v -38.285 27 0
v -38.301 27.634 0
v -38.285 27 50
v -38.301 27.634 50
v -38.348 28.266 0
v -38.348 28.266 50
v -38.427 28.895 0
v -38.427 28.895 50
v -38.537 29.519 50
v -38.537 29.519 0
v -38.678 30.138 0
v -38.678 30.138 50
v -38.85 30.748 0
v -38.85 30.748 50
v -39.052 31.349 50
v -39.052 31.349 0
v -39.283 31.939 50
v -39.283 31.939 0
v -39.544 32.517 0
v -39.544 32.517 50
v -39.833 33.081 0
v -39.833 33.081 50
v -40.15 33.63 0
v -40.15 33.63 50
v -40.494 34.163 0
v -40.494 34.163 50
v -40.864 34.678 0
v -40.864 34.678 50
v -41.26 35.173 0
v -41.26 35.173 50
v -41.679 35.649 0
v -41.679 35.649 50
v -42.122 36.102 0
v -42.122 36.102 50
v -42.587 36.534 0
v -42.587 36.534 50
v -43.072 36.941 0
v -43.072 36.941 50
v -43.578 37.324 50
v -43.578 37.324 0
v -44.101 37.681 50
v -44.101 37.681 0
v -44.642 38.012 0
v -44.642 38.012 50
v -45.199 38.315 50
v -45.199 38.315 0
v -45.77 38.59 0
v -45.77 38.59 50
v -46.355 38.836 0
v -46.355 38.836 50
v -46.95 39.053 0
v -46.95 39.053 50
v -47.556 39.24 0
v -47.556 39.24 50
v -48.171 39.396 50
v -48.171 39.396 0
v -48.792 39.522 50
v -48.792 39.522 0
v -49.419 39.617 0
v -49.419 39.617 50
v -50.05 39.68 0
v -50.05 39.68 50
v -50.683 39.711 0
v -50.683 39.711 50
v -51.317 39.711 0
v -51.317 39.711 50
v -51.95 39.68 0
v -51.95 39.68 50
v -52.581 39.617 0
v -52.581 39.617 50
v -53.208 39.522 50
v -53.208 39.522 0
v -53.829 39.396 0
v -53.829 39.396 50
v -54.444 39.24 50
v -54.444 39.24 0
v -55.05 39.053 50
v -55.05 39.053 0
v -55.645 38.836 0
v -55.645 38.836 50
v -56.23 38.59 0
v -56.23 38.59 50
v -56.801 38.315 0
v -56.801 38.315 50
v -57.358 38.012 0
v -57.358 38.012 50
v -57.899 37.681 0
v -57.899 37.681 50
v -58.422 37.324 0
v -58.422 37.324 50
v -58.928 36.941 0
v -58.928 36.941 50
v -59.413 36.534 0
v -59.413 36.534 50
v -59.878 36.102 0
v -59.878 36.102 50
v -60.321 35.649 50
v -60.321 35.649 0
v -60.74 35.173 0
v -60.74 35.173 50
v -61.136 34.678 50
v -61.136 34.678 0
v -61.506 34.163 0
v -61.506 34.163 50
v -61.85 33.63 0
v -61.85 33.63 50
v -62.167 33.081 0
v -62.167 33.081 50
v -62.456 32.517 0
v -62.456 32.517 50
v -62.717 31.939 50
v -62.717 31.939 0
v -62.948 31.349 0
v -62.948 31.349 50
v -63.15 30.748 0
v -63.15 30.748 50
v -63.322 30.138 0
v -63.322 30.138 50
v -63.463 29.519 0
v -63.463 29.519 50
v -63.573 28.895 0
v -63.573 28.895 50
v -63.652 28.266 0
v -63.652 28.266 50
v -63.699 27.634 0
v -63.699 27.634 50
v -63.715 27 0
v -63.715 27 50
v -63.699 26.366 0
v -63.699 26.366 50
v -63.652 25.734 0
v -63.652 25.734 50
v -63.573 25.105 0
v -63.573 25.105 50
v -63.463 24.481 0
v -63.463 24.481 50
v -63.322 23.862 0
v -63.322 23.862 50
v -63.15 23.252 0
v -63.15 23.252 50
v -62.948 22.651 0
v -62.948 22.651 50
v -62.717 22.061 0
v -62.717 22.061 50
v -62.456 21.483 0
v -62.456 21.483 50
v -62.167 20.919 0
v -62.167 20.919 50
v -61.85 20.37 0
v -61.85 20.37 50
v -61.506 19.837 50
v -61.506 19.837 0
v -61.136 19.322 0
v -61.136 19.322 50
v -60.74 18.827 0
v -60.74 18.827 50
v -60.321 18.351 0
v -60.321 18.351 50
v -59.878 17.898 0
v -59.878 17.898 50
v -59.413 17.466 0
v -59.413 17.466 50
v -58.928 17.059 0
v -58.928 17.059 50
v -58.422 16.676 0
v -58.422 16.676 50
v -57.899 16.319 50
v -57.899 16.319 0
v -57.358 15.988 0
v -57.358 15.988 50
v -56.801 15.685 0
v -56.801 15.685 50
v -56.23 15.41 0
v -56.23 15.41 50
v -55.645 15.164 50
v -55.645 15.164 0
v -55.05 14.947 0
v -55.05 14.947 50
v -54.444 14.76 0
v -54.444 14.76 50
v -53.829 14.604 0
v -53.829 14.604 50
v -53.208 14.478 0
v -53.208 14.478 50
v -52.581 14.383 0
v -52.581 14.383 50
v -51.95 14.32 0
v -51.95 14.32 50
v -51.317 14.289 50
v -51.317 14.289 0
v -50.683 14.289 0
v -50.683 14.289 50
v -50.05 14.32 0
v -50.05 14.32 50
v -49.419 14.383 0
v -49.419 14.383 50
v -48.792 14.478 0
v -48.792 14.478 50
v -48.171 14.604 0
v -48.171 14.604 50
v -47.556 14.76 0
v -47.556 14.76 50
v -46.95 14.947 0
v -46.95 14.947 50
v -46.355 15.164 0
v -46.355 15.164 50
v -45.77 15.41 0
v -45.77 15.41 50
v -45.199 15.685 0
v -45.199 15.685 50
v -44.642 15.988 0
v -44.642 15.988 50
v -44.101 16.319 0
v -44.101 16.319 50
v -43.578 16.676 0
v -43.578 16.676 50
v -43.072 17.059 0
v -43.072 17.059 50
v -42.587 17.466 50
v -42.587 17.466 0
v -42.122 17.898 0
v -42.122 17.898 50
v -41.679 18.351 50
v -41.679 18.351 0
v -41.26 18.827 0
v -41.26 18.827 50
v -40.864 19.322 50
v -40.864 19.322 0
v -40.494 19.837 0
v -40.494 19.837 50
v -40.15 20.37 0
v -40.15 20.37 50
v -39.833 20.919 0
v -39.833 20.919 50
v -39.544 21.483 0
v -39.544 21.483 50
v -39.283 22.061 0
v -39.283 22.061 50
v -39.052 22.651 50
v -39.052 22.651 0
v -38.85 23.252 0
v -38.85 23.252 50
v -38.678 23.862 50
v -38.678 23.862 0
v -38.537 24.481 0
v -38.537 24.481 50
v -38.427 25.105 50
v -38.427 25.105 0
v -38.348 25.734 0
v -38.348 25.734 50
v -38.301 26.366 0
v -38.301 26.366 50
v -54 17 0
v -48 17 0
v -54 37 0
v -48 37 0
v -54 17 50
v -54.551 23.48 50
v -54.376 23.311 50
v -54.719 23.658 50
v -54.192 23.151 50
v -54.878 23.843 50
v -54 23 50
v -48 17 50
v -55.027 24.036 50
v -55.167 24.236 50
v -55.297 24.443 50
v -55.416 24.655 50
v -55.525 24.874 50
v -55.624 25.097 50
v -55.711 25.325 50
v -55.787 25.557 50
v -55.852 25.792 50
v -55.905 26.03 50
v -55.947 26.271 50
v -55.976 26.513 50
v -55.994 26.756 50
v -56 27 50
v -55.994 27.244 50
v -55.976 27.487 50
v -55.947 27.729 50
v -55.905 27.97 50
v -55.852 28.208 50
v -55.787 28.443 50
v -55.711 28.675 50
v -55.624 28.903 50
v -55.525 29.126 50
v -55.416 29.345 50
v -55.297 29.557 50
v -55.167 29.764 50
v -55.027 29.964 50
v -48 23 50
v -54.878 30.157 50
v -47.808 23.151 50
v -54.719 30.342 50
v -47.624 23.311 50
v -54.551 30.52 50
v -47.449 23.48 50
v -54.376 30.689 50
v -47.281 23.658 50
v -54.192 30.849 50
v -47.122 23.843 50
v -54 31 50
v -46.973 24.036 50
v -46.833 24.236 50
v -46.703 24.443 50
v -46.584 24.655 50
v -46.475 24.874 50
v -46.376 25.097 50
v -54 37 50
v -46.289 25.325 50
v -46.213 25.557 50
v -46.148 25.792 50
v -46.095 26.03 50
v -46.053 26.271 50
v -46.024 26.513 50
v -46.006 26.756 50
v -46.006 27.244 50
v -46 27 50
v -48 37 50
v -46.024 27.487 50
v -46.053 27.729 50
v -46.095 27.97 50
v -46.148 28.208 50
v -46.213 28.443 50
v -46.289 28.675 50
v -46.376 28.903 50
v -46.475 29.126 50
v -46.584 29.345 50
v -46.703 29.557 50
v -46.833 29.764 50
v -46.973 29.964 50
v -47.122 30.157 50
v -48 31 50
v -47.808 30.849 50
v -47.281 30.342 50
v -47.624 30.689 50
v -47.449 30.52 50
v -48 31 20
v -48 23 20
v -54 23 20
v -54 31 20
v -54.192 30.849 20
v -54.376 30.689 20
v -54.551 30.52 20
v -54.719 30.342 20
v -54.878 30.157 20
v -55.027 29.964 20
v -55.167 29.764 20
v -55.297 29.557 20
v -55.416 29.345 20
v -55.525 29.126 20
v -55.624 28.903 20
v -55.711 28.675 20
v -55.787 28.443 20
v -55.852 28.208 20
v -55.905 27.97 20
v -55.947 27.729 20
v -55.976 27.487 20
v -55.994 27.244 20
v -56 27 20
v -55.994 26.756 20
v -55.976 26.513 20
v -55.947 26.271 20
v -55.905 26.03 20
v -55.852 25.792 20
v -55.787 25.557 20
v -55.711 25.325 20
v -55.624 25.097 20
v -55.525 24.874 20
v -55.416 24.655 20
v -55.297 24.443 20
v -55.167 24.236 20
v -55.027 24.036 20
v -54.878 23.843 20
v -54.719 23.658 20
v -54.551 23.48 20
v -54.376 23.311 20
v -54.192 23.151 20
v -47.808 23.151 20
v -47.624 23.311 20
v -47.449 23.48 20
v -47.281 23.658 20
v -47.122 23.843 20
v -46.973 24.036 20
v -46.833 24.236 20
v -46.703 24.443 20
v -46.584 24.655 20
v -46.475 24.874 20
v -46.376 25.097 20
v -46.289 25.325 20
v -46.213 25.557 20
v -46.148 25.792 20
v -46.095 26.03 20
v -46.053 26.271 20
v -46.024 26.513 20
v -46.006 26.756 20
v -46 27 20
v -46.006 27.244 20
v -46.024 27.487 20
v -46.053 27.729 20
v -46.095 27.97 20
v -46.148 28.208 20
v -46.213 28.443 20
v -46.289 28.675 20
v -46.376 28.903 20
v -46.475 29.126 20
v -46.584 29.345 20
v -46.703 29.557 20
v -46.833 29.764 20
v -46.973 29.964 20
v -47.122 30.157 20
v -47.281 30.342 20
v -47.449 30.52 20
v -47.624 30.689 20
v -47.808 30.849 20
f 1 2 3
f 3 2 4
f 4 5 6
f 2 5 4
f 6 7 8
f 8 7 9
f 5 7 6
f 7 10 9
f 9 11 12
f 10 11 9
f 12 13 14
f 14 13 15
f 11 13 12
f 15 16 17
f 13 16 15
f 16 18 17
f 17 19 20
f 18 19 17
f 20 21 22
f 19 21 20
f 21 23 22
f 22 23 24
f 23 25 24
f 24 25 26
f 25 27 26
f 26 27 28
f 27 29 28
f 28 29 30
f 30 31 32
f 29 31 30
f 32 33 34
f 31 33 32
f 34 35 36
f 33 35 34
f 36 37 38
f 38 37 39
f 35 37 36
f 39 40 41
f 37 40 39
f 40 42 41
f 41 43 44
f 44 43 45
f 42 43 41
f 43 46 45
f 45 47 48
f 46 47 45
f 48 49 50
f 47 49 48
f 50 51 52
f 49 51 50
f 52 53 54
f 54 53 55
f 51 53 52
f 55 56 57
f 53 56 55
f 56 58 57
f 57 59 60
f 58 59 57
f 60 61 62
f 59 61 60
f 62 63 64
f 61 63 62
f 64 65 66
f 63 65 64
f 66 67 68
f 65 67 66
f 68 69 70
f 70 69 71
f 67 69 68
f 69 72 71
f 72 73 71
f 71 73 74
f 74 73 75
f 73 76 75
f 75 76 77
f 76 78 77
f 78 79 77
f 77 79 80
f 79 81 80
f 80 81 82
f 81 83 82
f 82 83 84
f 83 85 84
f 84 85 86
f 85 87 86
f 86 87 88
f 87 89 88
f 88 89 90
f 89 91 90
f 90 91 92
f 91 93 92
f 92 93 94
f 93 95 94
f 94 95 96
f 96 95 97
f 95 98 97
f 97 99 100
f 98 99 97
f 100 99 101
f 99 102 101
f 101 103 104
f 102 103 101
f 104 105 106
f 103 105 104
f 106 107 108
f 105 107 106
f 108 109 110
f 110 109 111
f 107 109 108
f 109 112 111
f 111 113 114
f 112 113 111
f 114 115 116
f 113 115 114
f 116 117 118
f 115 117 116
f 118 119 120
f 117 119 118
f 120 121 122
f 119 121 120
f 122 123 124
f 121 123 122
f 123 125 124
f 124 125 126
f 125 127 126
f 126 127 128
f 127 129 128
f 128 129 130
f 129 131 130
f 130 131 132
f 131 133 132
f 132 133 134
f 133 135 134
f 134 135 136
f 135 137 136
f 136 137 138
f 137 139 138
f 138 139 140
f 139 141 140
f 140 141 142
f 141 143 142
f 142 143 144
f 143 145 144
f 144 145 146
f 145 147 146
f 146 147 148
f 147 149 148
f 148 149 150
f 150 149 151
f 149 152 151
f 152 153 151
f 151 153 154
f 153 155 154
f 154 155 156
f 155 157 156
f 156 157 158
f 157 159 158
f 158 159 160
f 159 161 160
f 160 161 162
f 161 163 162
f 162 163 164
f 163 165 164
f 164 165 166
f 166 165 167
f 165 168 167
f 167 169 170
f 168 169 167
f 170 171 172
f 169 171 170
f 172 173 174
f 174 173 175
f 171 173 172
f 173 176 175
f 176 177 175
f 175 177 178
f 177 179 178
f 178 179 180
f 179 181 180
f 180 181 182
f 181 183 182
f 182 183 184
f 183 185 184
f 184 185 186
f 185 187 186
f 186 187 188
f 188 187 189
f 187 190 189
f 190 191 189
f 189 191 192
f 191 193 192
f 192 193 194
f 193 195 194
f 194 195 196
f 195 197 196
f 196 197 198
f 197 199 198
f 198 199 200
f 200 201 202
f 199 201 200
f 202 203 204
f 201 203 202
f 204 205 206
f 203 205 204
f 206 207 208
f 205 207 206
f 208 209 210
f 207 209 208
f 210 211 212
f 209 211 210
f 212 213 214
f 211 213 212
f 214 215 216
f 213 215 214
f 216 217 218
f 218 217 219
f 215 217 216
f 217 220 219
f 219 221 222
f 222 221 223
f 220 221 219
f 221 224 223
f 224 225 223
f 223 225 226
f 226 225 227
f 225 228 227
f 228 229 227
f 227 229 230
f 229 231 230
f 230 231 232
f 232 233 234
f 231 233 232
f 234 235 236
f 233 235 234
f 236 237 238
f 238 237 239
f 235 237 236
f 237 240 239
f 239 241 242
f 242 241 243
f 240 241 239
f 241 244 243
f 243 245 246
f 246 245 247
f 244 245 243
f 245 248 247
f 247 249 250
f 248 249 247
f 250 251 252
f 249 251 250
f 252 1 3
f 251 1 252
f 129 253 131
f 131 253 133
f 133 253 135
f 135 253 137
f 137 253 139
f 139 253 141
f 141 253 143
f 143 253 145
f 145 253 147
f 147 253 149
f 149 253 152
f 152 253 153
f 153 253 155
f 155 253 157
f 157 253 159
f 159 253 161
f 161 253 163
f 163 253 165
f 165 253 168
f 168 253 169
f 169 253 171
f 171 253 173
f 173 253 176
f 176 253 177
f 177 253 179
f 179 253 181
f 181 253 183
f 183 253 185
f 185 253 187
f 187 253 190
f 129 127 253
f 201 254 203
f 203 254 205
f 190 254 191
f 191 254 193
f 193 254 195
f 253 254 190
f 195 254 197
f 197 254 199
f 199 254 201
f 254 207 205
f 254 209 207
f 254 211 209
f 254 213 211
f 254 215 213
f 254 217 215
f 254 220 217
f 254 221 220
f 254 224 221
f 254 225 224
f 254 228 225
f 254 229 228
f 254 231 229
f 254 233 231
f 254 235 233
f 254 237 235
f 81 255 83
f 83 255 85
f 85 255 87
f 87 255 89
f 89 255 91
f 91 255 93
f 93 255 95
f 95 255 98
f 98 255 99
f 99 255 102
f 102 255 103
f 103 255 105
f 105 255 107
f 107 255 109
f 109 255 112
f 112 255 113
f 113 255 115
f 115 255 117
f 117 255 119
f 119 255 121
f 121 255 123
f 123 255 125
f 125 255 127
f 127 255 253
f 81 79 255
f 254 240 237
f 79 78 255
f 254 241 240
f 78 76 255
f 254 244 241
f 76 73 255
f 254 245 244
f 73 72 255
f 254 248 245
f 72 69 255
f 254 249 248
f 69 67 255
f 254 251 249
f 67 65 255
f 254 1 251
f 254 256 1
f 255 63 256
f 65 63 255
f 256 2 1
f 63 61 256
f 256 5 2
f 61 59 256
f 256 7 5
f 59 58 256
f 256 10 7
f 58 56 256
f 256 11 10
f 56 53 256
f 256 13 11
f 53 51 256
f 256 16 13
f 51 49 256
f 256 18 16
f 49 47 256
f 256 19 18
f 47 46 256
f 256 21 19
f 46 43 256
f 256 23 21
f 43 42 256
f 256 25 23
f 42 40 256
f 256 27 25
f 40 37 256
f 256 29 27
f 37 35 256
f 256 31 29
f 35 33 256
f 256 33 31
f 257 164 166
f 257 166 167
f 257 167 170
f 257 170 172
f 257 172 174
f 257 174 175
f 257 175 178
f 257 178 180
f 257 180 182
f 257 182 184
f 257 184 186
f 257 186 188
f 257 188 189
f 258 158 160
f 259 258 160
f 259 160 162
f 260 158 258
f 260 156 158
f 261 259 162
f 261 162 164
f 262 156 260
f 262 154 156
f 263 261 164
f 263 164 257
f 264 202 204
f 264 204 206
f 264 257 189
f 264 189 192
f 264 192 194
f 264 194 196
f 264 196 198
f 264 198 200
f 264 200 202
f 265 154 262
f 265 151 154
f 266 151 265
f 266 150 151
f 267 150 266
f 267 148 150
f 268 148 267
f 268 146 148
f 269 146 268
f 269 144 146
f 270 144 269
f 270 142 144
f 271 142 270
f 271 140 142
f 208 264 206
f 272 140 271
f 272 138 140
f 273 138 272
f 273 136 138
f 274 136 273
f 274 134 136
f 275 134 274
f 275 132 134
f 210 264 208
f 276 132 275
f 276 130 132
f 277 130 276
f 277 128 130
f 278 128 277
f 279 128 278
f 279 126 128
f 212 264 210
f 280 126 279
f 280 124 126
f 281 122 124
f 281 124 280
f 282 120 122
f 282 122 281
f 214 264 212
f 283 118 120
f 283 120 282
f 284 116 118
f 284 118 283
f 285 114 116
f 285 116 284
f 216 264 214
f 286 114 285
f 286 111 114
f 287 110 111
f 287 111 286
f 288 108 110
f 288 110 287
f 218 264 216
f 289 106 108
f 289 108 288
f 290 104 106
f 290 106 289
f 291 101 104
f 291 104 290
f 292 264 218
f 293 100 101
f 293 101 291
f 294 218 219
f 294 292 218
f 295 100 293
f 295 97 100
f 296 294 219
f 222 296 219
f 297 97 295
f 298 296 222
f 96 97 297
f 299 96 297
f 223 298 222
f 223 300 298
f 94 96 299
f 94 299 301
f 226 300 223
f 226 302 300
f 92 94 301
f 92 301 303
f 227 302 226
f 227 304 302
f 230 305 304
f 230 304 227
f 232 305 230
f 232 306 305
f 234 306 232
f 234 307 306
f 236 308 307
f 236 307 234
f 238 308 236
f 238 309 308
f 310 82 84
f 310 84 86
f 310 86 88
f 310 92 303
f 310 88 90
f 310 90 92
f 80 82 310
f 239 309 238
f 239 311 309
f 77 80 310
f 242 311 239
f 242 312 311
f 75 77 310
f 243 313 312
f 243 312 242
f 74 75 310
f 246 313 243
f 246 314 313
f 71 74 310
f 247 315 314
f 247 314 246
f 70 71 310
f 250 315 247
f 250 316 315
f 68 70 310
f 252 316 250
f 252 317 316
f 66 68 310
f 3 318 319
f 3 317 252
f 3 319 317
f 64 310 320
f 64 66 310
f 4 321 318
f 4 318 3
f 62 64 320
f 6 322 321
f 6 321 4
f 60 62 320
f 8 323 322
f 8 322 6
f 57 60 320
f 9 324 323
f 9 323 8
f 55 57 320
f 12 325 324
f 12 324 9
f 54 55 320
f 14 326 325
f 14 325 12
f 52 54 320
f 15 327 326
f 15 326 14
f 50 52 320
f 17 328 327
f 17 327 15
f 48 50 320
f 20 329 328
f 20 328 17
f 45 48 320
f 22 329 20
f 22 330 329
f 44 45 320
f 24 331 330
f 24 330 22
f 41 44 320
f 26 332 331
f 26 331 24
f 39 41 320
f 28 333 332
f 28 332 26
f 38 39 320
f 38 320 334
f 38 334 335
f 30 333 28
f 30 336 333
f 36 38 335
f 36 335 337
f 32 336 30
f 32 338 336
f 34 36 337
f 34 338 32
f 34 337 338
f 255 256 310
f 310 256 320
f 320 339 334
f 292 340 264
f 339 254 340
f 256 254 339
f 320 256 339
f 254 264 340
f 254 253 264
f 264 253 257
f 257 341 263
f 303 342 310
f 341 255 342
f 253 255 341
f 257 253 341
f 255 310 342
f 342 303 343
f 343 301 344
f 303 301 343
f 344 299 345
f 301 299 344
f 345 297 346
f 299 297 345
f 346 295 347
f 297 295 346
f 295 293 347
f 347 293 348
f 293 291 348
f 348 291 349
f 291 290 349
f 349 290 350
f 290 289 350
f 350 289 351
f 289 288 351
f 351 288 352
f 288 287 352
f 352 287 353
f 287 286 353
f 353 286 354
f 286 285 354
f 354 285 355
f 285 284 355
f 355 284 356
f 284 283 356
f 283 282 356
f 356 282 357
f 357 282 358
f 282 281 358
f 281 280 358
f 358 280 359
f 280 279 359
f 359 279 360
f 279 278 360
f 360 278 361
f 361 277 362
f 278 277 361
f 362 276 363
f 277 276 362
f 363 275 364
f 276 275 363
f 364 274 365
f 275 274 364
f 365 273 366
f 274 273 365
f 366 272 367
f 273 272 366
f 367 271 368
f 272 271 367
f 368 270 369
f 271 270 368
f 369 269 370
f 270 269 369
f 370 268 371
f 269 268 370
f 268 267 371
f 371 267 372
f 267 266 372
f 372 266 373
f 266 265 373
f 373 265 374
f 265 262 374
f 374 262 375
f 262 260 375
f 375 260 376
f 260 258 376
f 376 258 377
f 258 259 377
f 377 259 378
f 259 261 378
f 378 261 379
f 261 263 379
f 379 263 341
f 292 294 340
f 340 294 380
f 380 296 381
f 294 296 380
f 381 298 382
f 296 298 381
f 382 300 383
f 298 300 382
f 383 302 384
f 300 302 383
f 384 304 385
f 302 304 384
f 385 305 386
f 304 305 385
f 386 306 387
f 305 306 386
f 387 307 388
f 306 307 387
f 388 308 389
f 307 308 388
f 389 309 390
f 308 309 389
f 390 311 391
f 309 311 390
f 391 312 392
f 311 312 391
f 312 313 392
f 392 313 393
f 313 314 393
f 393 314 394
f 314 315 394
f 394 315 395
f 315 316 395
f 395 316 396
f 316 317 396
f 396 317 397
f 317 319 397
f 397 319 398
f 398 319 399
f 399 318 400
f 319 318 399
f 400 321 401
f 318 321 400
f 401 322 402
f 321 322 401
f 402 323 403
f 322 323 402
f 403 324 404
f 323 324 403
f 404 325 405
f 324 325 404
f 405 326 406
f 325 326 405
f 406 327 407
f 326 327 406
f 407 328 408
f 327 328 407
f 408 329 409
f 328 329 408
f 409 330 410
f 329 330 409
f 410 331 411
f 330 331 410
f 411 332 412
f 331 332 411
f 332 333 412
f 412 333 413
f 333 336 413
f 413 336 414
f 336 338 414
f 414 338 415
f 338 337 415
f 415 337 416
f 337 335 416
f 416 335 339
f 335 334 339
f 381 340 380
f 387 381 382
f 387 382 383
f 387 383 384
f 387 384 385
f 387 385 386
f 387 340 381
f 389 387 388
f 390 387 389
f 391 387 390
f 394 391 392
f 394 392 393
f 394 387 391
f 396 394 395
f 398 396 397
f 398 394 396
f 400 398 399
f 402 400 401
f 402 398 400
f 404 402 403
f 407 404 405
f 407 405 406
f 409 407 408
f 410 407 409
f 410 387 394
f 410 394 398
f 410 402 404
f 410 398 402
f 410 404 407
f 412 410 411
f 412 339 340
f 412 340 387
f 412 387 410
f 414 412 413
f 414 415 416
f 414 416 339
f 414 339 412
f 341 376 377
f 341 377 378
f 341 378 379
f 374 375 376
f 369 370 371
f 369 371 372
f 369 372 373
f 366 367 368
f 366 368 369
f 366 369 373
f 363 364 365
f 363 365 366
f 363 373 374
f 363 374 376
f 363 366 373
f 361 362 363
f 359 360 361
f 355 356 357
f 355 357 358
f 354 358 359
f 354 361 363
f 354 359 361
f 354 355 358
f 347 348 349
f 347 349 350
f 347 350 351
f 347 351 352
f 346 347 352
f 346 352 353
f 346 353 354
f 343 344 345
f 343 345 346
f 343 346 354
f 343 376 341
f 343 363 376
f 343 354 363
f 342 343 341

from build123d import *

# Parameters (mm, degrees)
SKETCH_R     = 12.715244
SKETCH_W     = 6
SKETCH_H     = 20
PAD_DEPTH    = 50
SKETCH001_R  = 5
POCKET_DEPTH = 30


with BuildPart() as part:
    # Sketch → Pad (new body)
    with BuildSketch(Plane.XY):
        with Locations((-51, 27)):
            Circle(SKETCH_R)
        with Locations((-51, 27)):
            Rectangle(SKETCH_W, SKETCH_H, mode=Mode.SUBTRACT)
    extrude(amount=PAD_DEPTH)

    # Sketch001 (on Face7 of Pad) → Pocket (cut)
    with BuildSketch(Plane.XY.offset(50)):
        with Locations((-51, 27)):
            Circle(SKETCH001_R)
    extrude(amount=-POCKET_DEPTH, mode=Mode.SUBTRACT)


solid = part.part
